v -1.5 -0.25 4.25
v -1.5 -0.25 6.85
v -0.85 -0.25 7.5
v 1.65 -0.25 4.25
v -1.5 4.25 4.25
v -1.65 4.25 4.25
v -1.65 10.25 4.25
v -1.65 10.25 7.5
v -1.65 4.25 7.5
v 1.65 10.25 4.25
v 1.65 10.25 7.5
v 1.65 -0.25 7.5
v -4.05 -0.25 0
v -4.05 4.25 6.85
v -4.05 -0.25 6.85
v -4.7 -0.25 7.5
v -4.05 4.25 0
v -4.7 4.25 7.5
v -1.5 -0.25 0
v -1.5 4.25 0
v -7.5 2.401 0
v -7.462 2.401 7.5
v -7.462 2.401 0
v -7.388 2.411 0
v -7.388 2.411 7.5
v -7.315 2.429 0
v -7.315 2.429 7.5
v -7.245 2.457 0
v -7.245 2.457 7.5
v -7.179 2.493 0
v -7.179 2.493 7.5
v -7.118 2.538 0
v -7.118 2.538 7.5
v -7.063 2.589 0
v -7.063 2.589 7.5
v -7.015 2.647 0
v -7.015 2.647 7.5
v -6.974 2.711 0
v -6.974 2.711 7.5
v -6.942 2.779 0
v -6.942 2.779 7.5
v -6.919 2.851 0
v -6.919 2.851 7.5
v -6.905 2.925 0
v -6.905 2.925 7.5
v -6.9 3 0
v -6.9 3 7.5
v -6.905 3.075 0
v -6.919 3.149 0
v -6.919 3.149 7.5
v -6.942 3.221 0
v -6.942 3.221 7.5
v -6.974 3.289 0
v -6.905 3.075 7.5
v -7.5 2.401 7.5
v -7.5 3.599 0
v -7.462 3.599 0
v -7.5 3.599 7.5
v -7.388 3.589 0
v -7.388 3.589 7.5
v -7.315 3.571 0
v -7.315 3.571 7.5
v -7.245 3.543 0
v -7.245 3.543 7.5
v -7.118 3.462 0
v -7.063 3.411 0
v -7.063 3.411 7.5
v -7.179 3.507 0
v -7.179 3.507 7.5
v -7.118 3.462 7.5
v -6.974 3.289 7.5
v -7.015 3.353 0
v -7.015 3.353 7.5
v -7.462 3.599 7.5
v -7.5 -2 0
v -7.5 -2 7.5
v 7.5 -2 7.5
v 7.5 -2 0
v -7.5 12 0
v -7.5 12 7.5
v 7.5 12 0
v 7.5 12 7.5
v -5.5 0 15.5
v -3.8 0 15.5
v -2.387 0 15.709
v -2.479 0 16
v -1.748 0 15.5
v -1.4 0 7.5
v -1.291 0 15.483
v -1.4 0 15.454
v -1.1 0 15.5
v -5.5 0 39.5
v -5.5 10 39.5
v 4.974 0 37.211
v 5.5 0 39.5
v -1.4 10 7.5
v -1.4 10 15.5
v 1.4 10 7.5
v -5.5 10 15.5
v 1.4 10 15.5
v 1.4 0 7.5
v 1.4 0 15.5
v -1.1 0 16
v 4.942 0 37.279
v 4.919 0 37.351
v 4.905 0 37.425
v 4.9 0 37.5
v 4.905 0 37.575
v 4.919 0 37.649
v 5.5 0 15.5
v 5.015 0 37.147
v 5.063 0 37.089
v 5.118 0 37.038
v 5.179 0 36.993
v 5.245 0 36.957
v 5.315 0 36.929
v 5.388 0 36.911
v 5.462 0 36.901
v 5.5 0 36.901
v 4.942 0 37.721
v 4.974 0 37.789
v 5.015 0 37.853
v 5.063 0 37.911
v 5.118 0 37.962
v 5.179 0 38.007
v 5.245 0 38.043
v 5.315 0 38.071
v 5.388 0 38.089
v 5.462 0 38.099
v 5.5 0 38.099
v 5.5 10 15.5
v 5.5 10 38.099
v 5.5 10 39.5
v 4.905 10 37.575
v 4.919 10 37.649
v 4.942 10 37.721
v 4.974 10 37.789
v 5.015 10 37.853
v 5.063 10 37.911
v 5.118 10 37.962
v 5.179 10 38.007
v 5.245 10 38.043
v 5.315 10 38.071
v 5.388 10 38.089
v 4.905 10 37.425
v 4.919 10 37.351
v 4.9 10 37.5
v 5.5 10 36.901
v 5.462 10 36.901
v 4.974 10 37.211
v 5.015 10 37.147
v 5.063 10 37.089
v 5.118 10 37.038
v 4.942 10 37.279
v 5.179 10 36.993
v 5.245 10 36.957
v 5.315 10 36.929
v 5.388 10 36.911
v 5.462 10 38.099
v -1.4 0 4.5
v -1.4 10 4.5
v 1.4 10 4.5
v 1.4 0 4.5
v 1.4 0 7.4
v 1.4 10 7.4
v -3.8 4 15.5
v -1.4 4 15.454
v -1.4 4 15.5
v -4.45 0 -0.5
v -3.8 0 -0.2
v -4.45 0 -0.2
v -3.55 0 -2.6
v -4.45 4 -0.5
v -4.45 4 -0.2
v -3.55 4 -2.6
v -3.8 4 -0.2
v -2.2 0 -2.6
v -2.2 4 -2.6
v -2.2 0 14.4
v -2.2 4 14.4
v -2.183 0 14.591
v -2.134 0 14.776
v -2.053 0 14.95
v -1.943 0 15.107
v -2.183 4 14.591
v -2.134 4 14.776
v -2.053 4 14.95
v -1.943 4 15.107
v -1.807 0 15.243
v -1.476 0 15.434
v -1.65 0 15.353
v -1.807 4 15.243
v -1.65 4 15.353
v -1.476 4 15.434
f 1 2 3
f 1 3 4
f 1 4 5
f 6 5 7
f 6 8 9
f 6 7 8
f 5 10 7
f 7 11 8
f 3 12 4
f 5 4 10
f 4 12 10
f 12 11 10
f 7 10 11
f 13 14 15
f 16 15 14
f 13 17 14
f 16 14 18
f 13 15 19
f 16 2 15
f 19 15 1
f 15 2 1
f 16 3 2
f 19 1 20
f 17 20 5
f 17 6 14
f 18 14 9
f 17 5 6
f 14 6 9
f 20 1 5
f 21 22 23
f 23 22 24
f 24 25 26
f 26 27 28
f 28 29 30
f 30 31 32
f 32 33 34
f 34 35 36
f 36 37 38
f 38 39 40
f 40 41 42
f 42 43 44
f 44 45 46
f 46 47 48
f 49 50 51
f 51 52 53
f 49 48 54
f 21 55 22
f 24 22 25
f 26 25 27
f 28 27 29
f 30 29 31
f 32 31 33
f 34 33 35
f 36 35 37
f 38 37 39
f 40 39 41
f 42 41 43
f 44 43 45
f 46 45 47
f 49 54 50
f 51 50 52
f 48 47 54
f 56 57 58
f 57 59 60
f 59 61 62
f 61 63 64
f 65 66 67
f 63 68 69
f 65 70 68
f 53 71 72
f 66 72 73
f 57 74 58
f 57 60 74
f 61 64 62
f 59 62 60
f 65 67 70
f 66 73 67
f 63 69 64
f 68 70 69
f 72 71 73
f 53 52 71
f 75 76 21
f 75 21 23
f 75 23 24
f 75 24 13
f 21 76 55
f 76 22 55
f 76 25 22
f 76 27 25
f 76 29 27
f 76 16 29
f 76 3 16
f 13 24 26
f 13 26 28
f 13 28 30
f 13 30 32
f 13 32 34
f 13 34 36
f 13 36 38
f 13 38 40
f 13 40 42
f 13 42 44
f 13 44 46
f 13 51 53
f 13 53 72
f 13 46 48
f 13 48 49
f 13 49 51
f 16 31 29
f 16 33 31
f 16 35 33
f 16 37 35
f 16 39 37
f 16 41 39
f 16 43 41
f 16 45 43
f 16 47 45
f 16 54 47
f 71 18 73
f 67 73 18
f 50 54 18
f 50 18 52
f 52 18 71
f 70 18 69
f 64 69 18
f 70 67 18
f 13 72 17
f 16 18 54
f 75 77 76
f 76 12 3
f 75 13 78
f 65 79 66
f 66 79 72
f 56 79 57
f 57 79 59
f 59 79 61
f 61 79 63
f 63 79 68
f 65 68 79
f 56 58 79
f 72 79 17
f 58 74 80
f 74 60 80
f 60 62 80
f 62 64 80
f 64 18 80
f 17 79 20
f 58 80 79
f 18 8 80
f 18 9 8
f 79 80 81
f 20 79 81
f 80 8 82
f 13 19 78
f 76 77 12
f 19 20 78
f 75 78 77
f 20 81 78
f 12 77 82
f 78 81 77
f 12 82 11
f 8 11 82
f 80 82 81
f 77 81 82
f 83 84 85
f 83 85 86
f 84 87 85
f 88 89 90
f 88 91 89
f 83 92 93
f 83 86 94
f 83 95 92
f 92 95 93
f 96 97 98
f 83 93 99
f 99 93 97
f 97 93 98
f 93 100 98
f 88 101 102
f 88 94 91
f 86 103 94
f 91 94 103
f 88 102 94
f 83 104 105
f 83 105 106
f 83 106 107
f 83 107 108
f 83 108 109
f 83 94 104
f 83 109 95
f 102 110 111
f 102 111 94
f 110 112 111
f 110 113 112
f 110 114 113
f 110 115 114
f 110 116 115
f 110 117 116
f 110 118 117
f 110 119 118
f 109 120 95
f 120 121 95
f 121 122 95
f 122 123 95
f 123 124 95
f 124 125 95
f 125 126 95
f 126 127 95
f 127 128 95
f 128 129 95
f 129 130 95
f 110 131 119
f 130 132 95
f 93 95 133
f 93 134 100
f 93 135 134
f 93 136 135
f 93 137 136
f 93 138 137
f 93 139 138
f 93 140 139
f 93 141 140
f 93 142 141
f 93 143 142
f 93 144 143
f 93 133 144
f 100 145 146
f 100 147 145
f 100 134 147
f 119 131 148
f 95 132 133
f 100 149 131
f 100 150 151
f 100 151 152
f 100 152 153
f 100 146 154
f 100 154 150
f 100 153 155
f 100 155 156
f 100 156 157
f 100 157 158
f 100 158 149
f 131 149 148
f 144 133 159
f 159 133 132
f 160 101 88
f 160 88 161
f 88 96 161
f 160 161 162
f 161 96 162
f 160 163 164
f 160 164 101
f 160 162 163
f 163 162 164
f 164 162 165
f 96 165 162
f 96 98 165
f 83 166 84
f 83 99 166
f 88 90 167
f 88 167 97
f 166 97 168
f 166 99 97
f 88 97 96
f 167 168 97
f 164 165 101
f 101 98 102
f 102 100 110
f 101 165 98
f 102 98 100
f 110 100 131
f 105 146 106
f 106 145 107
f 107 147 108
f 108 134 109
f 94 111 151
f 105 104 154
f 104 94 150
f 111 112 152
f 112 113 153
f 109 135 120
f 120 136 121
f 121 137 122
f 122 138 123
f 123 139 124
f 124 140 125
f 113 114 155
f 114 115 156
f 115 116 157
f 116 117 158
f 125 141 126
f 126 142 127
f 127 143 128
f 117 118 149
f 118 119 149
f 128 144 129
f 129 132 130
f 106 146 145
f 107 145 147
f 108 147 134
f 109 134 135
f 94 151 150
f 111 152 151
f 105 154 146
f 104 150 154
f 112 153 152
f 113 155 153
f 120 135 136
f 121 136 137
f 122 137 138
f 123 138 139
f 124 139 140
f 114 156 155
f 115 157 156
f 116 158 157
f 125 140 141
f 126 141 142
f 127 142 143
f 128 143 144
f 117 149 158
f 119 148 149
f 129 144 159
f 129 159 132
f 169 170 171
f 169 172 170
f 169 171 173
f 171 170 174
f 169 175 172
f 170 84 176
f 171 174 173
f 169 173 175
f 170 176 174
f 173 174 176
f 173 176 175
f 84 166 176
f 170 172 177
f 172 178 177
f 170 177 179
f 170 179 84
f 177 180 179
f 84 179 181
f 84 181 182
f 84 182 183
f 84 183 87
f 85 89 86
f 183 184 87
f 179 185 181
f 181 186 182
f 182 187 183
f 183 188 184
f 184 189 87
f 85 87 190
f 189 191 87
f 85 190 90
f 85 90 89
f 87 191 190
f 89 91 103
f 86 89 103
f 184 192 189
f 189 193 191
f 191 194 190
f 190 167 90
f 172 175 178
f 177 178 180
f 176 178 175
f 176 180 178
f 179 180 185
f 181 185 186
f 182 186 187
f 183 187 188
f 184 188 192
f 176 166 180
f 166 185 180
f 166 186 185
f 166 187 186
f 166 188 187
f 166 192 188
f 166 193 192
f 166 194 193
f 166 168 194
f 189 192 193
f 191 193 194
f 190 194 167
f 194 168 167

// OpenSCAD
$fn = 50;

difference() {
	union() {
		translate(v = [0, 0, 0]) {
			rotate(a = [0, 0, 0]) {
				difference() {
					union() {
						translate(v = [-7.5, -2.0, 0]) {
							cube(size = [15.0, 14.0, 7.5]);
						}
					}
					union() {
						translate(v = [-1.65, -0.25, 4.25]) {
							cube(size = [3.3, 10.5, 3.35]);
						}
						translate(v = [0, 4.25, 0]) {
							rotate(a = [90, 0, 0]) {
								linear_extrude(height = 4.5) {
									polygon(points = [[-1.5, -0.1], [-4.05, -0.1], [-4.05, 6.85], [-4.8, 7.6], [-0.75, 7.6], [-1.5, 6.85]]);
								}
							}
						}
						translate(v = [-7.5, 3, -0.1]) {
							cylinder(h = 7.7, r = 0.6);
						}
					}
				}
			}
		}
		translate(v = [0, 0, 7.5]) {
			rotate(a = [0, 0, 0]) {
				union() {
					difference() {
						union() {
							translate(v = [-5.5, 0, 0]) {
								cube(size = [11.0, 10.0, 32.0]);
							}
							translate(v = [-1.4, 0, -3.0]) {
								cube(size = [2.8, 10.0, 3.1]);
							}
						}
						union() {
							translate(v = [-5.6, -0.1, -0.1]) {
								cube(size = [4.199999999999999, 10.2, 8.1]);
							}
							translate(v = [1.4, -0.1, -0.1]) {
								cube(size = [4.199999999999999, 10.2, 8.1]);
							}
							translate(v = [5.5, 10.1, 30.0]) {
								rotate(a = [90, 0, 0]) {
									cylinder(h = 10.2, r = 0.6);
								}
							}
						}
					}
					union() {
						translate(v = [0, 4.0, 0]) {
							rotate(a = [90, 0, 0]) {
								linear_extrude(height = 4.0) {
									polygon(points = [[-2.2, -10.1], [-3.55, -10.1], [-4.45, -8.0], [-4.45, -7.7], [-3.8, -7.7], [-3.8, 8.5], [-1.1, 8.5], [-1.1, 8.0], [-1.291013, 7.983289], [-1.476222, 7.933662], [-1.65, 7.852628], [-1.807066, 7.742649], [-1.942649, 7.607066], [-2.052628, 7.45], [-2.133662, 7.276222], [-2.183289, 7.091013], [-2.2, 6.9]]);
								}
							}
						}
					}
				}
			}
		}
	}
	union();
}
